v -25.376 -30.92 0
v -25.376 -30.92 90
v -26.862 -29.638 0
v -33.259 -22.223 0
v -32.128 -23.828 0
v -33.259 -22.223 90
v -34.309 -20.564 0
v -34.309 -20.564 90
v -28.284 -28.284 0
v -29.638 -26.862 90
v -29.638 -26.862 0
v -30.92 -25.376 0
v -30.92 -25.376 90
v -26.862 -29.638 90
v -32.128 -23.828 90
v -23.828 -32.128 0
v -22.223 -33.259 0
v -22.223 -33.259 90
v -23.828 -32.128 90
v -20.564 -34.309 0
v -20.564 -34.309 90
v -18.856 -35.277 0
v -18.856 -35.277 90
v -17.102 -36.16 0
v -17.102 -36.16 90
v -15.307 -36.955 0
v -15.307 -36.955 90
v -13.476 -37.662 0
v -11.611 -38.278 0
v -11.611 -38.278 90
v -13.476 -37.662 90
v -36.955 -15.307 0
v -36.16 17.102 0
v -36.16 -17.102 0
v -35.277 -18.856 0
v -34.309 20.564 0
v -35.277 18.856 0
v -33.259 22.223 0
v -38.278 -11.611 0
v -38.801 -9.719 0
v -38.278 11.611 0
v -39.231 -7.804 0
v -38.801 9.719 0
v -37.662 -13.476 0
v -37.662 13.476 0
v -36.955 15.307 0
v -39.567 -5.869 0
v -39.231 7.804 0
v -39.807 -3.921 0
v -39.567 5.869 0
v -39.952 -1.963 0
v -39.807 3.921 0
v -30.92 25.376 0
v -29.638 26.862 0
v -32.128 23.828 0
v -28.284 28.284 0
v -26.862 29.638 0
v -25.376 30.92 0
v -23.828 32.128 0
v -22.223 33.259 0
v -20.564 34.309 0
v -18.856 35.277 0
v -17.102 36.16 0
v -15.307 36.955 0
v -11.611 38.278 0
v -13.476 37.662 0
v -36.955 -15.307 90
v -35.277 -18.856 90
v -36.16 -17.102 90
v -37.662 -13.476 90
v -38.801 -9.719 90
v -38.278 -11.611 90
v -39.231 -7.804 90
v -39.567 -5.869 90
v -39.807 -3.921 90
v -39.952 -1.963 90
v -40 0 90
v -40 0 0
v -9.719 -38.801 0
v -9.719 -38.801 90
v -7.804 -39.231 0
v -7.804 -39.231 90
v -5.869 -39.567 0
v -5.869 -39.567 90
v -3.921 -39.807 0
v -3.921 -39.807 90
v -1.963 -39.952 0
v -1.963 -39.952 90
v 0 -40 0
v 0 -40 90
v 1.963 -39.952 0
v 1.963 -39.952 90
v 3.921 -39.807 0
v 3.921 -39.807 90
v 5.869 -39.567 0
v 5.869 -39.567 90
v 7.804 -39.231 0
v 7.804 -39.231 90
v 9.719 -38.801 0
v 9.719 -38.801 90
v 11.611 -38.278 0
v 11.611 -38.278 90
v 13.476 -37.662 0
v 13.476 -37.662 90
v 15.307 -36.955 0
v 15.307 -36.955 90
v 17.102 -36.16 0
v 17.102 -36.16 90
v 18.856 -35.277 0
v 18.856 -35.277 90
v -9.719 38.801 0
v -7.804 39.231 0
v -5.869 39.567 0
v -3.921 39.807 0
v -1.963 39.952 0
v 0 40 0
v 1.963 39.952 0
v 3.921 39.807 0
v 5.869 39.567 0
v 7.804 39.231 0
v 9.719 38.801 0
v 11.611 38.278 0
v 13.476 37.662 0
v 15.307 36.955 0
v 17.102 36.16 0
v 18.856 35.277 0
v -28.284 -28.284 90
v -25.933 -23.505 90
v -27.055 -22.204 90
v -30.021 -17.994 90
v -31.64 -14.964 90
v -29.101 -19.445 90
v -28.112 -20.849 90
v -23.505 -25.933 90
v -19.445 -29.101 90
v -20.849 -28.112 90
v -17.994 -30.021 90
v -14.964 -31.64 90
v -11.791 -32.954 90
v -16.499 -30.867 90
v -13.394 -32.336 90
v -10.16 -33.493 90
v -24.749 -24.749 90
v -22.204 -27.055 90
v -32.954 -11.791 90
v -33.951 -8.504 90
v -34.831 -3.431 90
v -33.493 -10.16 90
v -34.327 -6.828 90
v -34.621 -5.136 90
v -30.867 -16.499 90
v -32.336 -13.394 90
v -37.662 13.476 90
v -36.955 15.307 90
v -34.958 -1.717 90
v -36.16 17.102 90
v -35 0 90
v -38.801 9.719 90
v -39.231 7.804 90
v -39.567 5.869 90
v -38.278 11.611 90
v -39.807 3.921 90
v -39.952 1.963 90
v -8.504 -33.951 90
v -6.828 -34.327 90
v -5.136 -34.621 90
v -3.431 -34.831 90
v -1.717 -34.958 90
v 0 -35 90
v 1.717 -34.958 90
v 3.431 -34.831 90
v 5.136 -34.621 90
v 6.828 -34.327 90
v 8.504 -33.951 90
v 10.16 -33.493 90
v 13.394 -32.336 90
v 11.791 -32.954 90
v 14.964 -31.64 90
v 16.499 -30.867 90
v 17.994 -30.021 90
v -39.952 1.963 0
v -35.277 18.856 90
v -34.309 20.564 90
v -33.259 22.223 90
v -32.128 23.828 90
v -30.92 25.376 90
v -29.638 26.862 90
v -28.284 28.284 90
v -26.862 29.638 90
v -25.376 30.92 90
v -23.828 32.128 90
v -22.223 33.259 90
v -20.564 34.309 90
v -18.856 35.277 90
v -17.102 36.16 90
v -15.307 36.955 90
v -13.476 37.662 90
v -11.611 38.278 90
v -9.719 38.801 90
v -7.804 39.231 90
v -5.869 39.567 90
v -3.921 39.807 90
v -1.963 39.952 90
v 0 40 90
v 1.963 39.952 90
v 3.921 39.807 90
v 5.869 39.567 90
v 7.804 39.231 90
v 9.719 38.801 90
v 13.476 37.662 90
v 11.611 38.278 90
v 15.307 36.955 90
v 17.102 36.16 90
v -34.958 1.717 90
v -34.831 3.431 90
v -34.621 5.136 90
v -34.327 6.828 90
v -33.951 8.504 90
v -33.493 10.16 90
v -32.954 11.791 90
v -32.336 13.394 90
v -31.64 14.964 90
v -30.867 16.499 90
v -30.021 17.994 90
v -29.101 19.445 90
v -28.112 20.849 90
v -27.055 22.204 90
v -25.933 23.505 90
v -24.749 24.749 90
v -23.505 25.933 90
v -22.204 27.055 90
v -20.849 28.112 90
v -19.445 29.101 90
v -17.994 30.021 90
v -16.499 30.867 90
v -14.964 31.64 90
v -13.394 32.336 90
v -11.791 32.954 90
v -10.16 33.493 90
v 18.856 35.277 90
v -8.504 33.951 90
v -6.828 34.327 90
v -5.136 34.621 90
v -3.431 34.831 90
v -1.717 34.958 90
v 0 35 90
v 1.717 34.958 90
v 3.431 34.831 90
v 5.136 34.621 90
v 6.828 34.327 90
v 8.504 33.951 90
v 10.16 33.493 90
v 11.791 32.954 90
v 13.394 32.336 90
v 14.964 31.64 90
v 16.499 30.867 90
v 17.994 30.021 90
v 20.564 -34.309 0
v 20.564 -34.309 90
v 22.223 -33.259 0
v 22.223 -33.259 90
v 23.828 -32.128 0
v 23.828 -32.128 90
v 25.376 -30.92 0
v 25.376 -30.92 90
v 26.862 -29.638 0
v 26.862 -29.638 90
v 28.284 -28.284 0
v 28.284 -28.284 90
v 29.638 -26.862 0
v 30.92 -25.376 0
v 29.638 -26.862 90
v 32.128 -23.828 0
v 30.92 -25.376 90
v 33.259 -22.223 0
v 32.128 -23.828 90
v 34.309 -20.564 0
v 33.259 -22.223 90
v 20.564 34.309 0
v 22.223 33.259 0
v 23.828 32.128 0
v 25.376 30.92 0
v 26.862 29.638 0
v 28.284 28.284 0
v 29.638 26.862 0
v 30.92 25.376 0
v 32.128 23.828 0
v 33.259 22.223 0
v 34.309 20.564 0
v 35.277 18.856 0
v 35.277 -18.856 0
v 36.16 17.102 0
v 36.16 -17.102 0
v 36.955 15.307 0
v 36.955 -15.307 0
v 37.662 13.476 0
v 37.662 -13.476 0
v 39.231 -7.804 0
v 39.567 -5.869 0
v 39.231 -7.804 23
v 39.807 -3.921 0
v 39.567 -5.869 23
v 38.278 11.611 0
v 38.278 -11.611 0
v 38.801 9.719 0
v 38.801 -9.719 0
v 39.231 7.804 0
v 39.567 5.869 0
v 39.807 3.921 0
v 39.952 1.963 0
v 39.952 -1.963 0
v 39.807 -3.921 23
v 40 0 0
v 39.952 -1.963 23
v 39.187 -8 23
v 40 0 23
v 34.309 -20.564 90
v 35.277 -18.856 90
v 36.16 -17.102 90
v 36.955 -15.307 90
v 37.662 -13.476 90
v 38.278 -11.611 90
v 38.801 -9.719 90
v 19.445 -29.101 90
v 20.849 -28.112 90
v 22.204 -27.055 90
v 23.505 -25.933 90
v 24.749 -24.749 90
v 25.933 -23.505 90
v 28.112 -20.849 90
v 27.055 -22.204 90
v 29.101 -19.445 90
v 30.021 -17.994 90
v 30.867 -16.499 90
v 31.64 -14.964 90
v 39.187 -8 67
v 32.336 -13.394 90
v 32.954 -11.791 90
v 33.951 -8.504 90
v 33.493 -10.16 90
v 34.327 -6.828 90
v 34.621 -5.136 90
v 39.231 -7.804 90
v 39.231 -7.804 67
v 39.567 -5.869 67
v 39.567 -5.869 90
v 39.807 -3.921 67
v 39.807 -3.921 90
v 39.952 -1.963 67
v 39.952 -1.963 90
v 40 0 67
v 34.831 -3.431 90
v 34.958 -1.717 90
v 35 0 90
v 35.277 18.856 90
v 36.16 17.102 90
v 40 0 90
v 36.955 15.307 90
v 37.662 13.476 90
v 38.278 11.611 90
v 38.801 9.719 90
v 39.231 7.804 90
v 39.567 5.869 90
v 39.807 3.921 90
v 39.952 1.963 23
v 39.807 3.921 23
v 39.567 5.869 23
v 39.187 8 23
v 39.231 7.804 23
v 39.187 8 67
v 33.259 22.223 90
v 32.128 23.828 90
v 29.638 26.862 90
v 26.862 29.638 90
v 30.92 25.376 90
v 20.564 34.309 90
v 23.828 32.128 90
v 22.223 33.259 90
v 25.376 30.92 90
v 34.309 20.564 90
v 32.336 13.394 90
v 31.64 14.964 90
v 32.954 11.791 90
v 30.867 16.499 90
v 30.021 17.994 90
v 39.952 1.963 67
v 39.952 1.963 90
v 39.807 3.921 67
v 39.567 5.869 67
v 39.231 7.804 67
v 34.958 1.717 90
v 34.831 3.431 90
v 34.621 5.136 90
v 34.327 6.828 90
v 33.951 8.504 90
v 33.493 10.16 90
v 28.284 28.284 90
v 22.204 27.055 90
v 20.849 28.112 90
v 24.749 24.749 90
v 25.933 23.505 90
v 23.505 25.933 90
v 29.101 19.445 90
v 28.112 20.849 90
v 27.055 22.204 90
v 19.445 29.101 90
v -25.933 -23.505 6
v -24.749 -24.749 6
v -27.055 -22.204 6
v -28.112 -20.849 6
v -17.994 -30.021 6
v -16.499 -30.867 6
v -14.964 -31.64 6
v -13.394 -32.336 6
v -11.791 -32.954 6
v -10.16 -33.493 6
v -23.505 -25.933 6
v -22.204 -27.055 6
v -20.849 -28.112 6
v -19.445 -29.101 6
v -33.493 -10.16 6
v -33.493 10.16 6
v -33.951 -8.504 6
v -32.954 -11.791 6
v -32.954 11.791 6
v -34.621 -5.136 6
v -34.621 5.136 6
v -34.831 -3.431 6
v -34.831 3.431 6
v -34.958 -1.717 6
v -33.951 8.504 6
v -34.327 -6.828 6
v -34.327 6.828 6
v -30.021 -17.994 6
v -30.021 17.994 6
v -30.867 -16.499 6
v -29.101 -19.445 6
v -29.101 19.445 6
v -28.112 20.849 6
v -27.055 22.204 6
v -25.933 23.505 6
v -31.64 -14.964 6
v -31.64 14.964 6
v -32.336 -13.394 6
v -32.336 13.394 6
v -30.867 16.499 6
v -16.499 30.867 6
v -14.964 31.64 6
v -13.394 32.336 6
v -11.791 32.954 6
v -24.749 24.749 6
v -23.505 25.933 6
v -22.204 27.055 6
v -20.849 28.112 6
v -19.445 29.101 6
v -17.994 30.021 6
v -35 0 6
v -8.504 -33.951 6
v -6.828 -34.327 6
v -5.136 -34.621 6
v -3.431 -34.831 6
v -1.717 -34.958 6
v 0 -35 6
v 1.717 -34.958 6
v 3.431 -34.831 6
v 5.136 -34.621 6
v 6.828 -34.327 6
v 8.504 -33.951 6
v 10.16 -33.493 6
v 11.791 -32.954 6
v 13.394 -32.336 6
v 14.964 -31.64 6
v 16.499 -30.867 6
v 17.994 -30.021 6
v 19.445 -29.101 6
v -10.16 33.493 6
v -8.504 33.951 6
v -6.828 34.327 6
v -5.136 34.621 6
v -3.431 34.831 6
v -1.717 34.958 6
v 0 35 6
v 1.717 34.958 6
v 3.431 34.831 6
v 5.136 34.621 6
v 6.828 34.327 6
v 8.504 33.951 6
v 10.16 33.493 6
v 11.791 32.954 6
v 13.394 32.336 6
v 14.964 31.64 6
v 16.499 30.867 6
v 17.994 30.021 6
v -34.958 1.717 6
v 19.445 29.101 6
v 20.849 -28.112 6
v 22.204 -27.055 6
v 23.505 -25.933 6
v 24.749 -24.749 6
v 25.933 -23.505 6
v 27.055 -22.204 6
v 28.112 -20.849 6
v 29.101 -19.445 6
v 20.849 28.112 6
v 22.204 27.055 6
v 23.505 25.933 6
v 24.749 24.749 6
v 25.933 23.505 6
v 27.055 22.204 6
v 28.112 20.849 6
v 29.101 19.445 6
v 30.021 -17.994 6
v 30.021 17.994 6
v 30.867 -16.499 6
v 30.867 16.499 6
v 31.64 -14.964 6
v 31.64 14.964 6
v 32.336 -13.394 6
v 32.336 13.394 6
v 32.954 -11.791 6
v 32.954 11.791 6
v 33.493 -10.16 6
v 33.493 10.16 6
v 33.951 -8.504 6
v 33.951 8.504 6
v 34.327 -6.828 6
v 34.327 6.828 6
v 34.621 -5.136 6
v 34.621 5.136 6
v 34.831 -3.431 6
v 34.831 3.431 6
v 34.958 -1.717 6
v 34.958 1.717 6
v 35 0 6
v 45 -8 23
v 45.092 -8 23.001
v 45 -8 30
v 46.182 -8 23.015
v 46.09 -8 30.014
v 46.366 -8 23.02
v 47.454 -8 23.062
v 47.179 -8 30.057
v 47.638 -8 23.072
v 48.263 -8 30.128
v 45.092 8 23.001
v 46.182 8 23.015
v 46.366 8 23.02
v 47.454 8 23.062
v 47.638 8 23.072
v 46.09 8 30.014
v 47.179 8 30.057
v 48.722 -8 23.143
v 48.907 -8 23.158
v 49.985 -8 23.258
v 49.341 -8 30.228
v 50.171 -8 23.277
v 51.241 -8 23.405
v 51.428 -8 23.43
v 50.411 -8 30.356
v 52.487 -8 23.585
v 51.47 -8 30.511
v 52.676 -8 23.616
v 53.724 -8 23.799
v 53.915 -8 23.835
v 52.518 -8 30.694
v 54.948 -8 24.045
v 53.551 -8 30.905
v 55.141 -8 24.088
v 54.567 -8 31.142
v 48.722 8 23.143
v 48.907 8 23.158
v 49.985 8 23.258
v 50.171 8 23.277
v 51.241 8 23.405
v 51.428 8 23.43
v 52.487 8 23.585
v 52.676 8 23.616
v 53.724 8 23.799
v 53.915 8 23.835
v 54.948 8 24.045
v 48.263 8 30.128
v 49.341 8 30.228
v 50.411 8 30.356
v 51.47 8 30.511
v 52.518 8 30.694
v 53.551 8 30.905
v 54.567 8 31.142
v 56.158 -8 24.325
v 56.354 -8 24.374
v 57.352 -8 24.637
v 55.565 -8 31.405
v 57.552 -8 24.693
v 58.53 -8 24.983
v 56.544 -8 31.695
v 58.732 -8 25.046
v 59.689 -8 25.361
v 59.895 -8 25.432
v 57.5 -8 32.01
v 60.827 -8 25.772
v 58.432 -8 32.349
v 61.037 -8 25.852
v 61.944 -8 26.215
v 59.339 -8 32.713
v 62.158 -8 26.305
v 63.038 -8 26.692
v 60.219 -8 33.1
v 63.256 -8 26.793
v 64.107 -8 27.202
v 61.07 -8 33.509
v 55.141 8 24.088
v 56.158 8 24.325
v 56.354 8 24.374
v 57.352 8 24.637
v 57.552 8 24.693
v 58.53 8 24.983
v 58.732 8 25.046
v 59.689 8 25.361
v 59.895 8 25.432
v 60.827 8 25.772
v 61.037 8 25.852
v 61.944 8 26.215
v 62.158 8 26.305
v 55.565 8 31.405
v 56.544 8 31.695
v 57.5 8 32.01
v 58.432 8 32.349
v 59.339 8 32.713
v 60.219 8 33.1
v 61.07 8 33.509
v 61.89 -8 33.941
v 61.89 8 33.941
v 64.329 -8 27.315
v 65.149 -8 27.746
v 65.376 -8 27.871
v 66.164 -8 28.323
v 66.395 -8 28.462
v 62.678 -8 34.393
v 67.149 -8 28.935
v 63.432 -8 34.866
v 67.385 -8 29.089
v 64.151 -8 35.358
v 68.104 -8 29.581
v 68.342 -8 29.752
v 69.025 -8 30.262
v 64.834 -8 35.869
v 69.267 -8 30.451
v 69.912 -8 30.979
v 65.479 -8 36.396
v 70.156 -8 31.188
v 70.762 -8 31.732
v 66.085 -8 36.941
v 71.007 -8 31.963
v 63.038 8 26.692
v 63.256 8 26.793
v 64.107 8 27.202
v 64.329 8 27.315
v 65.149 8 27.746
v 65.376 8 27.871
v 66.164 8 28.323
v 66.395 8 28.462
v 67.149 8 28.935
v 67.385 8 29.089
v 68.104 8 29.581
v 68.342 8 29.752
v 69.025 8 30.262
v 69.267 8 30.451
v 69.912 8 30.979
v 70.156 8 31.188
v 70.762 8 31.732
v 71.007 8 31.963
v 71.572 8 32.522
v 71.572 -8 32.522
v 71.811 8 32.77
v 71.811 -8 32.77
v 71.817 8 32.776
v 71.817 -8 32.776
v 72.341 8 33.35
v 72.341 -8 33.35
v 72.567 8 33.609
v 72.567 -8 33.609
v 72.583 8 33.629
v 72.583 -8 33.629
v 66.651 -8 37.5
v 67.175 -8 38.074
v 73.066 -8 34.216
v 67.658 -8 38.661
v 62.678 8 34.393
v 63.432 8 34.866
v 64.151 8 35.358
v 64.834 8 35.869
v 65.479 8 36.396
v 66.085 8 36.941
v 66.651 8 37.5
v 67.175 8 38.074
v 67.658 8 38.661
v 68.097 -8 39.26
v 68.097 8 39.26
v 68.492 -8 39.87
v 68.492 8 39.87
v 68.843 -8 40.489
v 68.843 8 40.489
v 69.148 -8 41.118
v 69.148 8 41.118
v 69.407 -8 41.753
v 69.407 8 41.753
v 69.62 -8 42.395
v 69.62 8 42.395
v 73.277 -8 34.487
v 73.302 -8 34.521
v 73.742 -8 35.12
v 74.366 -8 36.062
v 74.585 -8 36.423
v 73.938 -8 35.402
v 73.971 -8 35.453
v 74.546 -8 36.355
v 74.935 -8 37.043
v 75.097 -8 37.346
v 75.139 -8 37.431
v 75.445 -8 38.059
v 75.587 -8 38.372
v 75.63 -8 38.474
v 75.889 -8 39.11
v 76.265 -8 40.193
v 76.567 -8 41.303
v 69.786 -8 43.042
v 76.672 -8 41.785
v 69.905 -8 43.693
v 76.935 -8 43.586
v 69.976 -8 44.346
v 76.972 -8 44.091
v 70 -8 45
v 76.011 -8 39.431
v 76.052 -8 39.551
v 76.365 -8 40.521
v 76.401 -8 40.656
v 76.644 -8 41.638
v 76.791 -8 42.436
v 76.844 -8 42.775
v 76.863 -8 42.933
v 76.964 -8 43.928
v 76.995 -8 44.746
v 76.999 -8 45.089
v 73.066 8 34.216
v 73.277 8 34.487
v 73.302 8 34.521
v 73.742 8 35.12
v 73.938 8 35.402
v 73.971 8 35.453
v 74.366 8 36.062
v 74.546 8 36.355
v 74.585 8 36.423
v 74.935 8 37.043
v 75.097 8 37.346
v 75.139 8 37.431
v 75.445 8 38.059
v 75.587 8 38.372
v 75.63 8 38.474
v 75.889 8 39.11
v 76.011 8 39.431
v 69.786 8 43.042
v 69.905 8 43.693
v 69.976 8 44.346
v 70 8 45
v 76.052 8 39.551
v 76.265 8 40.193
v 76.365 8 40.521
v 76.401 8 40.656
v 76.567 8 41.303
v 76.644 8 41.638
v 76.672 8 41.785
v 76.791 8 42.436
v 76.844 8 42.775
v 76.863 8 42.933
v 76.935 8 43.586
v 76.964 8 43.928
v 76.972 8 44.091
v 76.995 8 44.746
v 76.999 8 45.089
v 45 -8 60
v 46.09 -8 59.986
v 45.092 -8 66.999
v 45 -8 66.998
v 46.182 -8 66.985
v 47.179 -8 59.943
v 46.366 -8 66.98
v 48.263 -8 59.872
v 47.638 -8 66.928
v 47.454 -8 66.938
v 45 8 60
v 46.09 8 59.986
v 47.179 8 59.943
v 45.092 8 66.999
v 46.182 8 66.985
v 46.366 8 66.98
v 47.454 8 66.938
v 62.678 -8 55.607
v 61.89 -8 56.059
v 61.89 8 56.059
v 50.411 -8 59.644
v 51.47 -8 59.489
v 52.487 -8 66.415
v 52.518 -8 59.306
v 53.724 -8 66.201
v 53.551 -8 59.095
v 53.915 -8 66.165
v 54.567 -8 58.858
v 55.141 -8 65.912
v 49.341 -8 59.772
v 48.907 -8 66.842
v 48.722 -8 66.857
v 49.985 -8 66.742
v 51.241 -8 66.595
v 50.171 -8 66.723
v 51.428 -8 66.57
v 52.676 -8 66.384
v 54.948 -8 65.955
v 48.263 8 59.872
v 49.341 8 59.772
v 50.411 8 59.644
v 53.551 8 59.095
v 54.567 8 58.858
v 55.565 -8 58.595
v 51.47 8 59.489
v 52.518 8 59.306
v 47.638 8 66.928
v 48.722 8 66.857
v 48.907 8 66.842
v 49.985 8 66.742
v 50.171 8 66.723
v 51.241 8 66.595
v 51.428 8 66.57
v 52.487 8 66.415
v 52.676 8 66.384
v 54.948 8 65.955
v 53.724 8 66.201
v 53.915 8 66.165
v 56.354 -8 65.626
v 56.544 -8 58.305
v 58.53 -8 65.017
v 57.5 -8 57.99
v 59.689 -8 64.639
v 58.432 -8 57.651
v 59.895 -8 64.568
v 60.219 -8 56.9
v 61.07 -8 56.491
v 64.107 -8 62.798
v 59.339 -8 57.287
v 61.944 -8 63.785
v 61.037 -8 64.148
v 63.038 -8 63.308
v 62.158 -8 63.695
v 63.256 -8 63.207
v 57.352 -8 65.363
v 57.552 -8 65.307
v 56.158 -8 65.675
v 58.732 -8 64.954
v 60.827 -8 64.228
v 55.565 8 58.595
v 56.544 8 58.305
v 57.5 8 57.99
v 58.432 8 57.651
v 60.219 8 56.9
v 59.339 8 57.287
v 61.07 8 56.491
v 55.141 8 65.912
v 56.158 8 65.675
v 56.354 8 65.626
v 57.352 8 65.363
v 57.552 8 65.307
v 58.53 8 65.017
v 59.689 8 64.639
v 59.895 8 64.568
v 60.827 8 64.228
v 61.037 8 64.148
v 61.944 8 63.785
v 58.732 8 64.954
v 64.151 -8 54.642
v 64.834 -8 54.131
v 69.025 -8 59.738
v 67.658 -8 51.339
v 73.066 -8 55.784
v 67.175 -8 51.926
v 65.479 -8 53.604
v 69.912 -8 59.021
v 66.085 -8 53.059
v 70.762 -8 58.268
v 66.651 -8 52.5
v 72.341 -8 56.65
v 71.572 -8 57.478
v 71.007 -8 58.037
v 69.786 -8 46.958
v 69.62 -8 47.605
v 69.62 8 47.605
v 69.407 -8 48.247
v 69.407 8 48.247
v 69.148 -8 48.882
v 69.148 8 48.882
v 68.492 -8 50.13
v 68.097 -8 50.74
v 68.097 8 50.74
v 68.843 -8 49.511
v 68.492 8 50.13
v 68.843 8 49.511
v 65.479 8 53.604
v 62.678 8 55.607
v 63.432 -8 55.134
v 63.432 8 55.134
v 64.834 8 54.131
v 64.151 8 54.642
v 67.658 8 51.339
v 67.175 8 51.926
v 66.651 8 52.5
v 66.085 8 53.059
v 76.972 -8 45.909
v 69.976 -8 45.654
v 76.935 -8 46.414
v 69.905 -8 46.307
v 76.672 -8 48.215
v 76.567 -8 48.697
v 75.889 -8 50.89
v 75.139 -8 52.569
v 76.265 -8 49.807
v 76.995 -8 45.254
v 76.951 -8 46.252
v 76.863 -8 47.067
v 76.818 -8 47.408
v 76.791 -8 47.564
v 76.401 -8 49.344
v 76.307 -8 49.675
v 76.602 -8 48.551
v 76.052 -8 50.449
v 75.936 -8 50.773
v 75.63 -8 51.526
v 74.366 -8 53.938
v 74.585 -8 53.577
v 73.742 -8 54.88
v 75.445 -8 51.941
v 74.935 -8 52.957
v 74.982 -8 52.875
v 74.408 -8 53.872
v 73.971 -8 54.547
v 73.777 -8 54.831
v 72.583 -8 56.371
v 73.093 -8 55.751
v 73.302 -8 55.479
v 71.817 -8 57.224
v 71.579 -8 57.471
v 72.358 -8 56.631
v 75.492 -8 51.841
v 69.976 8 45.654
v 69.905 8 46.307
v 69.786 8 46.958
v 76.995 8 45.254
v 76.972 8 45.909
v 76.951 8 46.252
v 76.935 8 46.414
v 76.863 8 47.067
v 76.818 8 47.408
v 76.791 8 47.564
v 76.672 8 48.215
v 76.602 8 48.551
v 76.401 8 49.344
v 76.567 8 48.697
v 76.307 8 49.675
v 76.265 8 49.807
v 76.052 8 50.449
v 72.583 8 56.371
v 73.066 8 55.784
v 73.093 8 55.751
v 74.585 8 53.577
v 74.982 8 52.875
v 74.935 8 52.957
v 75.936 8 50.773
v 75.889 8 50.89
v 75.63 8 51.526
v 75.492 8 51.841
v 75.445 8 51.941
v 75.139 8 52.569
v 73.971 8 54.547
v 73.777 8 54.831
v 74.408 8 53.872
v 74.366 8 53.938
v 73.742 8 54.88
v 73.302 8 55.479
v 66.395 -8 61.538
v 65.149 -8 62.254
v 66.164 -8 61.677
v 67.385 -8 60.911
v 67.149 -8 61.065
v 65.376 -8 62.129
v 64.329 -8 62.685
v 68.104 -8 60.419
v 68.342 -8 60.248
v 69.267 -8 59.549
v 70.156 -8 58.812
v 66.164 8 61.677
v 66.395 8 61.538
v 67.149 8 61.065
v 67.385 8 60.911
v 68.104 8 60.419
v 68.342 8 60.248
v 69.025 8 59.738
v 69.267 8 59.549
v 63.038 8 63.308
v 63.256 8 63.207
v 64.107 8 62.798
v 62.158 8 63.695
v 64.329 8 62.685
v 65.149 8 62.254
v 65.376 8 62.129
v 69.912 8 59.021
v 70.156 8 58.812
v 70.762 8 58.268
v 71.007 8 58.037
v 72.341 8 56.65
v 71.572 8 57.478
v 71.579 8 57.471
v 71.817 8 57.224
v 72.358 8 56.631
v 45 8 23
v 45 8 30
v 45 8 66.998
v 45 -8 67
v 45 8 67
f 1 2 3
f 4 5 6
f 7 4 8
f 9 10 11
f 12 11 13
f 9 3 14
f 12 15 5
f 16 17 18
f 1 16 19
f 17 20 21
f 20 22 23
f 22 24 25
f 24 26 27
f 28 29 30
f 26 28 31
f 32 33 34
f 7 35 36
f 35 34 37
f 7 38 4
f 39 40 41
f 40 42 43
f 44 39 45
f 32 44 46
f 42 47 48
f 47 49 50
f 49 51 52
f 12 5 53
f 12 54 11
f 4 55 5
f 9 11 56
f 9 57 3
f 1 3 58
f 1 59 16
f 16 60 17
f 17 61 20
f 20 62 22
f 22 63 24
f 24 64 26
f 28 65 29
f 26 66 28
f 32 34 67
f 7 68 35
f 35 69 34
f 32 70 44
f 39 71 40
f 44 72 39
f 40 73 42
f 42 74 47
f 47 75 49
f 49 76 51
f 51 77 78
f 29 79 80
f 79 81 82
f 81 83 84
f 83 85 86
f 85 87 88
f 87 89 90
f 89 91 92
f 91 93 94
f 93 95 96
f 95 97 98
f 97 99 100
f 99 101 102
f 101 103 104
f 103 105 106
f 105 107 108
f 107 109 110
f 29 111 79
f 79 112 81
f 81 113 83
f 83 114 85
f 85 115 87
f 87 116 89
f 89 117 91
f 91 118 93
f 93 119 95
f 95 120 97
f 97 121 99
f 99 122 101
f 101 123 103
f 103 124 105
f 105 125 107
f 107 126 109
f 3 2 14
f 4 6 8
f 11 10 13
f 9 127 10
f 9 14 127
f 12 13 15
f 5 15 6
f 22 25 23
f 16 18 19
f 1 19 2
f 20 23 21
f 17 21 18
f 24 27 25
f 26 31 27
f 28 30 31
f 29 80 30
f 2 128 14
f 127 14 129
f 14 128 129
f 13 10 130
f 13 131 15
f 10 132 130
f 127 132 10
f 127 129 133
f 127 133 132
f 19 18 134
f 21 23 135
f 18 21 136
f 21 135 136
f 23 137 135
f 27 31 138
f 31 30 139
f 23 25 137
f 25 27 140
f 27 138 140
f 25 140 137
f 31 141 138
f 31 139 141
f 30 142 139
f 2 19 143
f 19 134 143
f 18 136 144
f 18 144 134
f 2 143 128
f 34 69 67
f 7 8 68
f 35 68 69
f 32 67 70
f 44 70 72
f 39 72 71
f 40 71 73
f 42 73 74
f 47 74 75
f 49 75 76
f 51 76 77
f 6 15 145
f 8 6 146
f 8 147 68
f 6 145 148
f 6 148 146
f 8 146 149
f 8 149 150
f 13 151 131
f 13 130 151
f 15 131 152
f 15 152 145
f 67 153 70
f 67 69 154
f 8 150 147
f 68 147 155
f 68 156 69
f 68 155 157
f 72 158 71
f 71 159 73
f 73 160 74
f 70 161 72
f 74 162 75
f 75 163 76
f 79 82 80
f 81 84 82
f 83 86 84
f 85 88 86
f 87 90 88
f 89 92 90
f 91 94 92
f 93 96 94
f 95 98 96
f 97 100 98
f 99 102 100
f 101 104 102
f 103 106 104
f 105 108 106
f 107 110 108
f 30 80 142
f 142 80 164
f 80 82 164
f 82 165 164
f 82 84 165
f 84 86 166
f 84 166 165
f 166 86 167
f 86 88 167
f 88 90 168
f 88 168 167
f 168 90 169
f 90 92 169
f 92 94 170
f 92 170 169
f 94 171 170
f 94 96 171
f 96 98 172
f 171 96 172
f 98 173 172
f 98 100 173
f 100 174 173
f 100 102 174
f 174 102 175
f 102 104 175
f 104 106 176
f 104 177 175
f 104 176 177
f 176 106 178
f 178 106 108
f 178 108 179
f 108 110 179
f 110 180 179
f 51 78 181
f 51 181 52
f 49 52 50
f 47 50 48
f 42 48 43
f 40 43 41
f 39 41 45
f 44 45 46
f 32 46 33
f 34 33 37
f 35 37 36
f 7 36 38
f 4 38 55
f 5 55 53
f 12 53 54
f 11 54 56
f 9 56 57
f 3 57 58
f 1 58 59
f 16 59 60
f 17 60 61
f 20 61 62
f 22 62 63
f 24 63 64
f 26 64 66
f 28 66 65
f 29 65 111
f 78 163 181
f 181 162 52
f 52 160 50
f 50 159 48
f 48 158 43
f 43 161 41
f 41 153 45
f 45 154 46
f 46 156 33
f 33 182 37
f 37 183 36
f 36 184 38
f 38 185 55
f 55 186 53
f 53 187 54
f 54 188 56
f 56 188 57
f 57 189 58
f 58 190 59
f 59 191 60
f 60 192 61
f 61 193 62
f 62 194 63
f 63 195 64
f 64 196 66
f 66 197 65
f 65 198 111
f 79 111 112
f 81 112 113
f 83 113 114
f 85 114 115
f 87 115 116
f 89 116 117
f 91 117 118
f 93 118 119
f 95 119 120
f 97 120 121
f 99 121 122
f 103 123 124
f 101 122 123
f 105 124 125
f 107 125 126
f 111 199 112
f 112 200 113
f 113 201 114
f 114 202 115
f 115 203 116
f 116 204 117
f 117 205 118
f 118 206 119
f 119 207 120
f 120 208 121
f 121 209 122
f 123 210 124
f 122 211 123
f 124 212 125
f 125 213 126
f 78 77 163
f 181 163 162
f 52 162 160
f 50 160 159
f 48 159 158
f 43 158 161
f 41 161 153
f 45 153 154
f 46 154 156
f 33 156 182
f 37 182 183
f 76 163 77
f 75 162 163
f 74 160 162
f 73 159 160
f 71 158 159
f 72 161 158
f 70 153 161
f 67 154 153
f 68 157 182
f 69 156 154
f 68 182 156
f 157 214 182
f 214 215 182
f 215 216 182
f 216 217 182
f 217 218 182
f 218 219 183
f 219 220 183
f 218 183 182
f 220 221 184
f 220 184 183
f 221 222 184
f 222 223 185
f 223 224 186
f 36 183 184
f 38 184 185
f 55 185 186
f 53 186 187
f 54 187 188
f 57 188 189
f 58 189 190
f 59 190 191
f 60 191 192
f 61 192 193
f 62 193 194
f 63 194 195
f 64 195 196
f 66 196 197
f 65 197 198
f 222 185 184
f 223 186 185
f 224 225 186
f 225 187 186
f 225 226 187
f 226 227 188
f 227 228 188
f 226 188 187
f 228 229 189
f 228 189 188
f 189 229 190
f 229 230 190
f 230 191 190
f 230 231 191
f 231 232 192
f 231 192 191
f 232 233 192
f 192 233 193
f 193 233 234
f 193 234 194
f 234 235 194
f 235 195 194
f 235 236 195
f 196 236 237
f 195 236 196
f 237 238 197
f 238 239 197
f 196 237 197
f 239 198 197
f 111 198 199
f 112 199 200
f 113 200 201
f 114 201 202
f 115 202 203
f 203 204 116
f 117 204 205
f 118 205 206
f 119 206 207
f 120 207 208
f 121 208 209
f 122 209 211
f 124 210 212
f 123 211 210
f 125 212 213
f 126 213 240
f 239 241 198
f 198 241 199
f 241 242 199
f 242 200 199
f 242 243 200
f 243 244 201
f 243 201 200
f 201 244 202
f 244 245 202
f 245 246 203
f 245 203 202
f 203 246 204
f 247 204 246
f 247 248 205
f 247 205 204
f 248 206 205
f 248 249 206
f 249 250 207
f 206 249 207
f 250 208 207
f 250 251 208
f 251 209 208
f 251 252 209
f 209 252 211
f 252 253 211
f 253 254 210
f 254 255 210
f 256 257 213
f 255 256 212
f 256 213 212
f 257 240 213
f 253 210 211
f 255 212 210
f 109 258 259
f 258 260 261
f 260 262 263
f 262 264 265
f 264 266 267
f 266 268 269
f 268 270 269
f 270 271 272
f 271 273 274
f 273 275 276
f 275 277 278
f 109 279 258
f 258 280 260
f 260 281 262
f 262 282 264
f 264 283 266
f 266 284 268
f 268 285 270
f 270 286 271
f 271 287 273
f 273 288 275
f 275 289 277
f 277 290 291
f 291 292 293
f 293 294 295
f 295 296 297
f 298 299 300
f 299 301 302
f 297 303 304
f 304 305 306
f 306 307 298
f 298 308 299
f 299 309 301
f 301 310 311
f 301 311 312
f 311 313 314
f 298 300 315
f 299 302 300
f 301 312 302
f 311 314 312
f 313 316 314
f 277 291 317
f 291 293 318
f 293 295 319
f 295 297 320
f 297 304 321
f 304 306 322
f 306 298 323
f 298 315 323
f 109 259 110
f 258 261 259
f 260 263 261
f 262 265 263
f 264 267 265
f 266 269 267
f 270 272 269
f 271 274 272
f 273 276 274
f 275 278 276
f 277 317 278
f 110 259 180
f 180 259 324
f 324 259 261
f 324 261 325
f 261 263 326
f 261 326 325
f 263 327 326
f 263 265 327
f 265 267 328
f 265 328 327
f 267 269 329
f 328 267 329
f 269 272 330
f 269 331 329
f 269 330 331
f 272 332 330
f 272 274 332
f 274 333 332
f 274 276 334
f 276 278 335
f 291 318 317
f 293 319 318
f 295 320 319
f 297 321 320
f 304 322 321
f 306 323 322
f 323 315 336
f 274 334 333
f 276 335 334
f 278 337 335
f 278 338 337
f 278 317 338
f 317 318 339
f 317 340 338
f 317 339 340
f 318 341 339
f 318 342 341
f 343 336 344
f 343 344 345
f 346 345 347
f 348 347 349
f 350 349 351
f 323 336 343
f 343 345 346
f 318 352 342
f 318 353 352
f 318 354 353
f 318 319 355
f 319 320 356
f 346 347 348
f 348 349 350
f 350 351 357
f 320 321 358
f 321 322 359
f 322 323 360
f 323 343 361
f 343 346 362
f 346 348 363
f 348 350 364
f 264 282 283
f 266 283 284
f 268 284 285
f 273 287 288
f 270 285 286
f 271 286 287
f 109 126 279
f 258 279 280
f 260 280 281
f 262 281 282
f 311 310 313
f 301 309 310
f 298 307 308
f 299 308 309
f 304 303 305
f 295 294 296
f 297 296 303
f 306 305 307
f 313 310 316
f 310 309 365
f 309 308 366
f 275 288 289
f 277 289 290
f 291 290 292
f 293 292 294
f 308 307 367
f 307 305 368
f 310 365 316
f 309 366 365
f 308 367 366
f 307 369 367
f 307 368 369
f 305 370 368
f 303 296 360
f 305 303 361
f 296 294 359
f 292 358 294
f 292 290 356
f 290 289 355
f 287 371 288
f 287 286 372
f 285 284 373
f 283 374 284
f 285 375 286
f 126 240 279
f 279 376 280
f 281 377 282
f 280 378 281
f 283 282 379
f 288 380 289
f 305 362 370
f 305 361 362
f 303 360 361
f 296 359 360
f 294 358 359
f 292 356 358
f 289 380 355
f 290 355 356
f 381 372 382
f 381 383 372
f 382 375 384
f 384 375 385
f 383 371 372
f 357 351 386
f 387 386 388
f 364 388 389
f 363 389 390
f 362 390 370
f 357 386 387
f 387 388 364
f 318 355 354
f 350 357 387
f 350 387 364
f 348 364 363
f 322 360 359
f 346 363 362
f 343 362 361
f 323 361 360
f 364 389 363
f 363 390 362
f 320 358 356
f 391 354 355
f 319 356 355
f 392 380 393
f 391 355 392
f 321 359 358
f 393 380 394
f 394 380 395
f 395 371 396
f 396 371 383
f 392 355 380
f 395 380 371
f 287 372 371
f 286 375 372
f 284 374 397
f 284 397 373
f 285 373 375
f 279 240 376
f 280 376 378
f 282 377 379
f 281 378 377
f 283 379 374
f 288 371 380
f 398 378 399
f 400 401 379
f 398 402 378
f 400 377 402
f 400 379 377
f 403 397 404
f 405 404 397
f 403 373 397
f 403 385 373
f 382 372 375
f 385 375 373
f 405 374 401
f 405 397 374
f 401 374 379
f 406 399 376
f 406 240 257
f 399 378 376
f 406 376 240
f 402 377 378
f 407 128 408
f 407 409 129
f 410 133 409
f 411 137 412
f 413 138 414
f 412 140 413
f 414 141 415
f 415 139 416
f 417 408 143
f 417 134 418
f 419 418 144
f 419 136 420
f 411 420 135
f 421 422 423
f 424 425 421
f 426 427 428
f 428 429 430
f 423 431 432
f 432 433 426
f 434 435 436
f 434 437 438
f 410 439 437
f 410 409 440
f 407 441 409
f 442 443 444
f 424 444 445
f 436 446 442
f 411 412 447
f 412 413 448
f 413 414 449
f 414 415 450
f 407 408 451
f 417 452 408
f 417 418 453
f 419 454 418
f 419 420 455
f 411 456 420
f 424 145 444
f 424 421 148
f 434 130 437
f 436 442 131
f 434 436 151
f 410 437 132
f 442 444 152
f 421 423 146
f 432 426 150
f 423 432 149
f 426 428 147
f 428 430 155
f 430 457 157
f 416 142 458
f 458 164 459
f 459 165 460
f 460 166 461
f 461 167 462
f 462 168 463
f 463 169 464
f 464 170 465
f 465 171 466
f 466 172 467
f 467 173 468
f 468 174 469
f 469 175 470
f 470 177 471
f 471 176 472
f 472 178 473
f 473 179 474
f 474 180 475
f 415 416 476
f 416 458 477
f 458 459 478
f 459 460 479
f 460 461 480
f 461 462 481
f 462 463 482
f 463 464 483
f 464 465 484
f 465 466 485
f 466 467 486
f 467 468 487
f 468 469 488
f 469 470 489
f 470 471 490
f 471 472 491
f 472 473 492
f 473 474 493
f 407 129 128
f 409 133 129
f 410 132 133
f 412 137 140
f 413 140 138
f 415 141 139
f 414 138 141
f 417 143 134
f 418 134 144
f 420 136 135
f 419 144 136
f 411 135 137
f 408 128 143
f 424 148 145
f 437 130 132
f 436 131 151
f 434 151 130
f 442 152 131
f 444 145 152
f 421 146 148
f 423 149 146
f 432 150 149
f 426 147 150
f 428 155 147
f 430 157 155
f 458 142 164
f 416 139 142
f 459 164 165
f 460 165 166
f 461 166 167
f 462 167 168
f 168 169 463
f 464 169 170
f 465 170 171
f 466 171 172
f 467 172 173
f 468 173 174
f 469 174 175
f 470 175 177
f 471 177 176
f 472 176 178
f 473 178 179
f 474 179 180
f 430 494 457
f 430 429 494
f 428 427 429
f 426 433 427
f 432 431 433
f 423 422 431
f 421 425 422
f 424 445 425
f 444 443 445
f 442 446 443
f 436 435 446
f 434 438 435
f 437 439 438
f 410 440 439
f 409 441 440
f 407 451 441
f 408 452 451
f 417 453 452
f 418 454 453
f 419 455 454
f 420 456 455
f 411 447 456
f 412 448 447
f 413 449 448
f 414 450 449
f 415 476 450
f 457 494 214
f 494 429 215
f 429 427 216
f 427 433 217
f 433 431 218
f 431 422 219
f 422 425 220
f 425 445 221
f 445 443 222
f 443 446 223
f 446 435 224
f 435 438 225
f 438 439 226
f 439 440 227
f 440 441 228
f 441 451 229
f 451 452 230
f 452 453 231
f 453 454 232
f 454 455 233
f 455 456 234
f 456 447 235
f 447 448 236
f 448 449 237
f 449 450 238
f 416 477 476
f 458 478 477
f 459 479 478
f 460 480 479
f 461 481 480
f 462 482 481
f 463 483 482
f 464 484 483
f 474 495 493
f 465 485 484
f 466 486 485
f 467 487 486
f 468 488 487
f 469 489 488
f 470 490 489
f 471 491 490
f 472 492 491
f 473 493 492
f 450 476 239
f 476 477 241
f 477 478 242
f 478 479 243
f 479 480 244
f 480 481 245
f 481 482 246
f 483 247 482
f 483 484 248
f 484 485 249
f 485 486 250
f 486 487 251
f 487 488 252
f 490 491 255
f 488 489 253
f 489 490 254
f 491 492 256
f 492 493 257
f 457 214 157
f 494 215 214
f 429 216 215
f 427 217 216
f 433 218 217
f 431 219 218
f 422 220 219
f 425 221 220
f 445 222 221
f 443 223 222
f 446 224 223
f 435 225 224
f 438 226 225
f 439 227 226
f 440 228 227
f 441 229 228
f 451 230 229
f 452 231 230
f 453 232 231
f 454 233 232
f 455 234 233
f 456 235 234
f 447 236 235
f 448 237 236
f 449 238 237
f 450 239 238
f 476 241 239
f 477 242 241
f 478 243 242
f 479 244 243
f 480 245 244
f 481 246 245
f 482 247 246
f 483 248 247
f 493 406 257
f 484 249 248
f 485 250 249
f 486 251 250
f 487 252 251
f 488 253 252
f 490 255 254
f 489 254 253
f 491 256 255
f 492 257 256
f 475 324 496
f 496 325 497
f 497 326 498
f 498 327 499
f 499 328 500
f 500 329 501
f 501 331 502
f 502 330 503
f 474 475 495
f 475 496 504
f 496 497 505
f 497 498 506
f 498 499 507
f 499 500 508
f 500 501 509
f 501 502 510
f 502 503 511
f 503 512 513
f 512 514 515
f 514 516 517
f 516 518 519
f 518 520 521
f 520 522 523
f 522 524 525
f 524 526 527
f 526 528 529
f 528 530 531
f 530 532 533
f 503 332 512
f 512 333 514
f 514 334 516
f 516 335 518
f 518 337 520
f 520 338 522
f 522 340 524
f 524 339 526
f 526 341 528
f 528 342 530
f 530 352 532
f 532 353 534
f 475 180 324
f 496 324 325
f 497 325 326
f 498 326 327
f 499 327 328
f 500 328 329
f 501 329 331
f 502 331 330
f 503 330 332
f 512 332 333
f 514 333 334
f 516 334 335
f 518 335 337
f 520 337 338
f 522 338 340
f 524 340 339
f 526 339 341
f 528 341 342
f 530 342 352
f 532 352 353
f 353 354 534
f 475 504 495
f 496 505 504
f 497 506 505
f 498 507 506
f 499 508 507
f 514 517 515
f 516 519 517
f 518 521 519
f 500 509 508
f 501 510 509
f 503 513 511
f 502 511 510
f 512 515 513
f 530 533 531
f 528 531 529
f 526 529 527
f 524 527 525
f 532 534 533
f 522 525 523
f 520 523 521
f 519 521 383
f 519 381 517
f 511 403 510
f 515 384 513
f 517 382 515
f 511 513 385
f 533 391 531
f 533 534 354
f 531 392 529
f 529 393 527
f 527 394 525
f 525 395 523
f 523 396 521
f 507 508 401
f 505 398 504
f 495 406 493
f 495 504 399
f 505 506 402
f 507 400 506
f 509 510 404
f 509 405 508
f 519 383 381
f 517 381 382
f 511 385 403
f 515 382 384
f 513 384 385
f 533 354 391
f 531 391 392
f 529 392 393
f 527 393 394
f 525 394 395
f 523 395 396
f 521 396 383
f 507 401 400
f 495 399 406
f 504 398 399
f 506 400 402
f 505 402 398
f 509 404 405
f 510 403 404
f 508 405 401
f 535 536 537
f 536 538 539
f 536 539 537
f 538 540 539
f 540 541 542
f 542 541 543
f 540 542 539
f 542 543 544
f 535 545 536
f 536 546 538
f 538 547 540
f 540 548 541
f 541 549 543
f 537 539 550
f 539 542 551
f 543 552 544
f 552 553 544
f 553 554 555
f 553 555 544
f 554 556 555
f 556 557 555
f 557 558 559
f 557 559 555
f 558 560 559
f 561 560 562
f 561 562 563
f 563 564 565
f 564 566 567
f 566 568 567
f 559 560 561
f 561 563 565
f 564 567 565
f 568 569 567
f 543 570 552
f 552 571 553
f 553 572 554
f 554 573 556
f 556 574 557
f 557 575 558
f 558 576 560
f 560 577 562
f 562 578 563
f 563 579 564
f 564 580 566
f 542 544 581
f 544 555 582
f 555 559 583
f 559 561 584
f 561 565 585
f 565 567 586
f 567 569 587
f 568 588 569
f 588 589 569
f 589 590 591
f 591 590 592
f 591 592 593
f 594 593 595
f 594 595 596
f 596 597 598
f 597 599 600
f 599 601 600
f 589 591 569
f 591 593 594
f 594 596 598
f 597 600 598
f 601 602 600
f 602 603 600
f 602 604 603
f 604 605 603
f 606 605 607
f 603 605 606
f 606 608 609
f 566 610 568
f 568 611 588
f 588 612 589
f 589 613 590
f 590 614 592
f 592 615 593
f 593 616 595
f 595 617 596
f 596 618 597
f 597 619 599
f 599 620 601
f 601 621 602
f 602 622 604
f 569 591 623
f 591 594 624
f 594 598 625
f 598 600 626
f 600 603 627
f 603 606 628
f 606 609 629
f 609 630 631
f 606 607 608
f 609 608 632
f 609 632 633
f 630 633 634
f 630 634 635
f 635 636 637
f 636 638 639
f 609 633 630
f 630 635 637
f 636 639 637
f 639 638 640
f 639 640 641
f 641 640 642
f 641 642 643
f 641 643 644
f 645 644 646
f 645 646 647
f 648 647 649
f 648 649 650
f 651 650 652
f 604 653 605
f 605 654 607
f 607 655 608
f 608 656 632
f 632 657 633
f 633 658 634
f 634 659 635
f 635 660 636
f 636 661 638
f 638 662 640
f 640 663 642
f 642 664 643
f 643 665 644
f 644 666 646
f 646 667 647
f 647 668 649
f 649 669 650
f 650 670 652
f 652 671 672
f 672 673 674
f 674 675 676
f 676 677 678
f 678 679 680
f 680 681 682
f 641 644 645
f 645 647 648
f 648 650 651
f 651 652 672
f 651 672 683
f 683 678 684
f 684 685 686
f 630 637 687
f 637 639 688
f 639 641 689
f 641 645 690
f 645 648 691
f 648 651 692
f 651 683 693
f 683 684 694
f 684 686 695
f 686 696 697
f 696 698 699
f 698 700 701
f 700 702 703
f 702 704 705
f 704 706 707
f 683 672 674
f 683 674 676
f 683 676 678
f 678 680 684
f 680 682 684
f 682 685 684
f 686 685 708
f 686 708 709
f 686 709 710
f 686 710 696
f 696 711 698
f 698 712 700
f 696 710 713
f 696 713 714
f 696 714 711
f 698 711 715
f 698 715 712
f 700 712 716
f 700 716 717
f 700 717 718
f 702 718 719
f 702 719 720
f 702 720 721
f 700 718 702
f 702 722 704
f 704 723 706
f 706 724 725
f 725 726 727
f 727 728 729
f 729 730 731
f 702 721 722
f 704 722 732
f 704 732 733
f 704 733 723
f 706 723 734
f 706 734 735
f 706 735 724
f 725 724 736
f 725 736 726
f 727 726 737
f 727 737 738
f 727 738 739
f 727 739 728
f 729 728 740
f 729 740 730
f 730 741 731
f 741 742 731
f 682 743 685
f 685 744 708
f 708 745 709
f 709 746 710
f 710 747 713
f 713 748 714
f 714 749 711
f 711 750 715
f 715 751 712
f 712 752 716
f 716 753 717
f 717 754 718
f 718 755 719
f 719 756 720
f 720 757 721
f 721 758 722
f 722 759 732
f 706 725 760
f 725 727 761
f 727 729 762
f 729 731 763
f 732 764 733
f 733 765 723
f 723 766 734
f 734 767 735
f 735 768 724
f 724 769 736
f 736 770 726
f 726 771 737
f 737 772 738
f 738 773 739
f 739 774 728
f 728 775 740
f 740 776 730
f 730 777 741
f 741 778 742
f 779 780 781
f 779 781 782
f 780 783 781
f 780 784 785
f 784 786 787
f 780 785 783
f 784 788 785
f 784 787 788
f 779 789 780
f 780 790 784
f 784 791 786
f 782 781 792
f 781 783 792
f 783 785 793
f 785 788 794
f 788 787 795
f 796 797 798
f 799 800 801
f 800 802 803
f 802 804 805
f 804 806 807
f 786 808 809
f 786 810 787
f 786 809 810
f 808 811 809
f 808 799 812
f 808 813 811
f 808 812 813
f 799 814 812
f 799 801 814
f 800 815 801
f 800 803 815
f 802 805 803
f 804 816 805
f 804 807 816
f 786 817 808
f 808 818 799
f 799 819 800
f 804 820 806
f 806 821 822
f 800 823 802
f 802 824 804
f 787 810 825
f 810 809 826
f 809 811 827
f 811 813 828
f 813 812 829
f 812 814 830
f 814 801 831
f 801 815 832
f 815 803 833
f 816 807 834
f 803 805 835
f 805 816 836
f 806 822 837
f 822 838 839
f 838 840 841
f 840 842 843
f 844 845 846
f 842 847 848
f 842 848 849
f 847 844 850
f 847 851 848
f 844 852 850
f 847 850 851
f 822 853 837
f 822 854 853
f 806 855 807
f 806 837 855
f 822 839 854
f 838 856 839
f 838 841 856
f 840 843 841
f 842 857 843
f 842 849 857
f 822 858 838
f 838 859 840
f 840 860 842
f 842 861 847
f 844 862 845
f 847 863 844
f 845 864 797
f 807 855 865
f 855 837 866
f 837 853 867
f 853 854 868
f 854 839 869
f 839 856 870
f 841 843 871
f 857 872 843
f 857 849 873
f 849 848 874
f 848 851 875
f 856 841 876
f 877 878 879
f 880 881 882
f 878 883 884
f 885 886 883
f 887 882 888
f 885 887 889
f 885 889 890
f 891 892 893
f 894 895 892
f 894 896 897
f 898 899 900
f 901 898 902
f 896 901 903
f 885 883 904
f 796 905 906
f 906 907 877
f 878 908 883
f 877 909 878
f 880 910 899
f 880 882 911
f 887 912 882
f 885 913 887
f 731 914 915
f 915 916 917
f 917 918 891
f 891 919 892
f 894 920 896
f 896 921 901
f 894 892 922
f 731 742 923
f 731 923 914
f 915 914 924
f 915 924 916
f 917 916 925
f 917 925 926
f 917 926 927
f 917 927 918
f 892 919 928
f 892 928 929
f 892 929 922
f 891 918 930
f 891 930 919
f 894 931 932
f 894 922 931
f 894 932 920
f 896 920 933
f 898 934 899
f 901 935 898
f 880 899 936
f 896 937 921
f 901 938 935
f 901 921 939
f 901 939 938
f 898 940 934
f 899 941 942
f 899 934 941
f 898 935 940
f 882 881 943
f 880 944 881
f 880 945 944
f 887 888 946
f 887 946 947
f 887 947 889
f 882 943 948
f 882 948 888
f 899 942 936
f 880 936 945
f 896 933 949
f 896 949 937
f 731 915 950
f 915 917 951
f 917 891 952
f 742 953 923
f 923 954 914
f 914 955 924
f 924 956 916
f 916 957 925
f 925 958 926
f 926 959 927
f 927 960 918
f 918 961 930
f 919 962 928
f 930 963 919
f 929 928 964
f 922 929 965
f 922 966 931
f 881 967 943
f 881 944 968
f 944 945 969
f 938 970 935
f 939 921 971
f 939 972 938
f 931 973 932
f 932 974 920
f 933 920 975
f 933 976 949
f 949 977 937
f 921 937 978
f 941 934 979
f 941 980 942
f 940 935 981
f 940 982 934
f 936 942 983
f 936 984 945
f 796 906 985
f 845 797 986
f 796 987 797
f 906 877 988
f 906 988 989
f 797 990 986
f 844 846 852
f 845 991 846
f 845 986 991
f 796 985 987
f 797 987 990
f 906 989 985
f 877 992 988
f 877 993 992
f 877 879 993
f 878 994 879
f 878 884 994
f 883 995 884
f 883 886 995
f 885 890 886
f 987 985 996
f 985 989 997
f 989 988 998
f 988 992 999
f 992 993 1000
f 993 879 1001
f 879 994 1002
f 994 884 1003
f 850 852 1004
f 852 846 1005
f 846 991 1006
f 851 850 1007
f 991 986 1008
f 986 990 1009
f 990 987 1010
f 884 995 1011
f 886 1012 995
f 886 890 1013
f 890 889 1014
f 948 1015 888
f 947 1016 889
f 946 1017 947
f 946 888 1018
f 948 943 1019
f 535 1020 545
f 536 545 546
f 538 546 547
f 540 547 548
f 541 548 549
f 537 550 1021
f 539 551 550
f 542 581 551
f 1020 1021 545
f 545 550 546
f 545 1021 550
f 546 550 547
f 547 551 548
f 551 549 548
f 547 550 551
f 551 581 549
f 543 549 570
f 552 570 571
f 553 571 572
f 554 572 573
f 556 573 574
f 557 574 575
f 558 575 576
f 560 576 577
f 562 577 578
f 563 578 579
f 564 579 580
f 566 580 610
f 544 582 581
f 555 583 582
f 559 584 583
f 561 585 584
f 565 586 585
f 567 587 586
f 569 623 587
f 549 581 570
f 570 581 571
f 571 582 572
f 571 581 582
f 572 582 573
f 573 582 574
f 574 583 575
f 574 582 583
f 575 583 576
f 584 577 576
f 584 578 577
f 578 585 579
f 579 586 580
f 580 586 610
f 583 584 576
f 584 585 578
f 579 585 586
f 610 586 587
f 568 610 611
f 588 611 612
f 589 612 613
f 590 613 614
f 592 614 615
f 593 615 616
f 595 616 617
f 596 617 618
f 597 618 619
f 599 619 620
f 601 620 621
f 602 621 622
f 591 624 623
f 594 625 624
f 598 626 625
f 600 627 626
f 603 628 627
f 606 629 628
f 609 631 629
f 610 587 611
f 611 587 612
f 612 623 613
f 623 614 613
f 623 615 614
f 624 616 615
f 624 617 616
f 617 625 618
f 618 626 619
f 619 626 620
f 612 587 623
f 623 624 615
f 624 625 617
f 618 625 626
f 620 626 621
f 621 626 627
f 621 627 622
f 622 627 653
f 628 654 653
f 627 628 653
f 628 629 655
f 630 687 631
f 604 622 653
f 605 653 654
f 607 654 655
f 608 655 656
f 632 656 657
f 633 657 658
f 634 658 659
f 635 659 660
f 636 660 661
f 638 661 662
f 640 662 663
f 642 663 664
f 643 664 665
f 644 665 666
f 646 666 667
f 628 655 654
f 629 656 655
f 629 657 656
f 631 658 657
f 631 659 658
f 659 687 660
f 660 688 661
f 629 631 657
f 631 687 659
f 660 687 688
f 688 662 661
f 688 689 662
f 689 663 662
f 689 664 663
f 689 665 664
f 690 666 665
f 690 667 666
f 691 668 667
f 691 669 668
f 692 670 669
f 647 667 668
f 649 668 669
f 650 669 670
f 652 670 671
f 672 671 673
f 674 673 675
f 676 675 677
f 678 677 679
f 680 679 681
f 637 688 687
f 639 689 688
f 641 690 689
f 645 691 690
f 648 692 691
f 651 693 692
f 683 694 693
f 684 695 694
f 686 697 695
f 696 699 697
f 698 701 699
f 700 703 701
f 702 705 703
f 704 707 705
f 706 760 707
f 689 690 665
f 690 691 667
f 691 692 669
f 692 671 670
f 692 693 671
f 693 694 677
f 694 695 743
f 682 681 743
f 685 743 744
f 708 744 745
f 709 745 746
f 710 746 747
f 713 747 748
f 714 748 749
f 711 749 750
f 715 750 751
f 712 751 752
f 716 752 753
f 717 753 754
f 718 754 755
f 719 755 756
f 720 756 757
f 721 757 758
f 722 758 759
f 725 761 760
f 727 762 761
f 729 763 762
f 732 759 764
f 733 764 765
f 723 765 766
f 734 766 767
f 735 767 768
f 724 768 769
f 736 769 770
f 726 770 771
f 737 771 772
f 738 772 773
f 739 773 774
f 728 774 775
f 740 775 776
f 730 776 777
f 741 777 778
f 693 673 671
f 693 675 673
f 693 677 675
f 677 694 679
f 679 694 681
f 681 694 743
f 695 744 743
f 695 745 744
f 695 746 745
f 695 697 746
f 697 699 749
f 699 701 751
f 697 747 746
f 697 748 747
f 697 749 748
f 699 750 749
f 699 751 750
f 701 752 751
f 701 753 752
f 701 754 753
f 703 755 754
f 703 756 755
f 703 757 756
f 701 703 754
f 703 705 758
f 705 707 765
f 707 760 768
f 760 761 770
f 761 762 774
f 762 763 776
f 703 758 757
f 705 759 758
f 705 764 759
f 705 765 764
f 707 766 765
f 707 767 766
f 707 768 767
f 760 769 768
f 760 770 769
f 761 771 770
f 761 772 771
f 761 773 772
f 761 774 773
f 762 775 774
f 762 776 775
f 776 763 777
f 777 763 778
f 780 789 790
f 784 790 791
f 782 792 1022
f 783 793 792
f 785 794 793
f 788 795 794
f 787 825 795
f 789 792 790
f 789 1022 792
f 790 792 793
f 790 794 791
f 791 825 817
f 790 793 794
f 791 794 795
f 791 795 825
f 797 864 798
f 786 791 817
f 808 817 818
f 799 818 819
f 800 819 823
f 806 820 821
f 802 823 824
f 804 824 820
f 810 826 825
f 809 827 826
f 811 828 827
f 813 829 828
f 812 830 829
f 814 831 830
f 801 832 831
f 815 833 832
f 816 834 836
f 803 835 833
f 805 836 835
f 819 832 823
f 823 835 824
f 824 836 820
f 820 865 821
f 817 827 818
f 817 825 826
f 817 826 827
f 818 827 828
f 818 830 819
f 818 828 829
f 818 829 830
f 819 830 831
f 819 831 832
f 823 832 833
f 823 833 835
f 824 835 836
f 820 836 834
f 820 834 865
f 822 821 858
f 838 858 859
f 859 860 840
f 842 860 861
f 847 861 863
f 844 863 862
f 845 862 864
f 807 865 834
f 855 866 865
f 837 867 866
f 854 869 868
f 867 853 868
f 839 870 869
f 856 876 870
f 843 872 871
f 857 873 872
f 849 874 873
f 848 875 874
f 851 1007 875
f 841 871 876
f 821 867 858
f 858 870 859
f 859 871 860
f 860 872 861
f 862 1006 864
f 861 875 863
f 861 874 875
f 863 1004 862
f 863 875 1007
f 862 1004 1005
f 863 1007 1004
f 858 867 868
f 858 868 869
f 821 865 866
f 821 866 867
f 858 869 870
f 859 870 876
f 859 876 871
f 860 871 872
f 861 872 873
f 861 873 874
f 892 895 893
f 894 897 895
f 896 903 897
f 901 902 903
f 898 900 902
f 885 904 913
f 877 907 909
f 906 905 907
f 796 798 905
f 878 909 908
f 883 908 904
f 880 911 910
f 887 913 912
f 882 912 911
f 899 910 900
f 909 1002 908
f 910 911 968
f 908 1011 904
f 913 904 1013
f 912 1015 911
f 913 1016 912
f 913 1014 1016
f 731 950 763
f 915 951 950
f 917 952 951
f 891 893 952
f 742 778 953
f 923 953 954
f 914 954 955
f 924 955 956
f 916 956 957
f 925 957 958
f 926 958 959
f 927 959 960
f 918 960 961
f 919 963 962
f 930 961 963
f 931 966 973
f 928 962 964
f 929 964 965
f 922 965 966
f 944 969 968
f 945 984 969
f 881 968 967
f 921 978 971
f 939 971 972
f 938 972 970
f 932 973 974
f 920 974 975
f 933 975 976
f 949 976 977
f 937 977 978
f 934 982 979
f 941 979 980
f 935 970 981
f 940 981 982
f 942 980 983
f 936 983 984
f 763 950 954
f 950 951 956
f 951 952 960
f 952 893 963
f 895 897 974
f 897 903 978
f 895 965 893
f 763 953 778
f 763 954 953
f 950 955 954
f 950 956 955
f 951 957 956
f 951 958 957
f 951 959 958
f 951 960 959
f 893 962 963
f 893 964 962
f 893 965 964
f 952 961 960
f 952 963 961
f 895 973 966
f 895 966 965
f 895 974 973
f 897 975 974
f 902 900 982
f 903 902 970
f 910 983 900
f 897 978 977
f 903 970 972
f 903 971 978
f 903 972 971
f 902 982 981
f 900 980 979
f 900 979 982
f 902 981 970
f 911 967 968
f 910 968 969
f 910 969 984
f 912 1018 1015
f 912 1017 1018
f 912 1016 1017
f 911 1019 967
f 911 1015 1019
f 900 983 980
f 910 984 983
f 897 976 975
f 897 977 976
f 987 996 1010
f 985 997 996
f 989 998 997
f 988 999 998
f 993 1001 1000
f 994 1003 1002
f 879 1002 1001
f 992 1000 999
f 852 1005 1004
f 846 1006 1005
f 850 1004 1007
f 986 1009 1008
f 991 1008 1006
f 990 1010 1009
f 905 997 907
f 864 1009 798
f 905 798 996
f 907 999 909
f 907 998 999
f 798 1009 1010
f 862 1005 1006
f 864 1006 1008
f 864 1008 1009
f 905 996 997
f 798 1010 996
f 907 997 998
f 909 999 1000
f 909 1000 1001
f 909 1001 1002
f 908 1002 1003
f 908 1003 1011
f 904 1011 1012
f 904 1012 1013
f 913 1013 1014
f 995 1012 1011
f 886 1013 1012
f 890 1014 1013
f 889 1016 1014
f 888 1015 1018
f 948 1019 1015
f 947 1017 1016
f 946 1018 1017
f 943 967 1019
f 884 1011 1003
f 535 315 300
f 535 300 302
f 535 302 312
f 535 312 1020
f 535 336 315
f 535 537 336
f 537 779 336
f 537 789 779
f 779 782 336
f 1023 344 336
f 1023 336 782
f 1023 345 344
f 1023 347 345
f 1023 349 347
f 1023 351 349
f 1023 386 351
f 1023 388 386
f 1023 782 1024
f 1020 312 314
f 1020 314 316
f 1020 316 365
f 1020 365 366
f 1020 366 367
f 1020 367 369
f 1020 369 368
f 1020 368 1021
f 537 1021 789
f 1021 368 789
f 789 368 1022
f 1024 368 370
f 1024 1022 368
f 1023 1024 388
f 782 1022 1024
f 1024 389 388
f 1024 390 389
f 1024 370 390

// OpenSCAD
$fn = 128;

outer_diameter = 80;
inner_diameter = 70;
mug_height = 90;
bottom_thickness = 6;

outer_radius = outer_diameter / 2;
inner_radius = inner_diameter / 2;

handle_opening_height = 30;
handle_opening_width = 25;
handle_wall = 7;
handle_depth = 16;
handle_center_z = mug_height / 2;
handle_opening_left_x = outer_radius + 5;
handle_attach_overlap = 2.5;

eps = 0.2;

module mug_body() {
    difference() {
        cylinder(h = mug_height, r = outer_radius);

        translate([0, 0, bottom_thickness])
            cylinder(h = mug_height - bottom_thickness + eps, r = inner_radius);
    }
}

module d_shape(x0, z0, h, w, segments = 72) {
    polygon(
        points = concat(
            [[x0, z0 - h / 2]],
            [
                for (i = [1 : segments - 1])
                    let (a = -90 + 180 * i / segments)
                        [x0 + w * cos(a), z0 + (h / 2) * sin(a)]
            ],
            [[x0, z0 + h / 2]]
        )
    );
}

module handle_profile() {
    difference() {
        offset(r = handle_wall)
            d_shape(
                handle_opening_left_x,
                handle_center_z,
                handle_opening_height,
                handle_opening_width
            );

        d_shape(
            handle_opening_left_x,
            handle_center_z,
            handle_opening_height,
            handle_opening_width
        );
    }
}

module handle() {
    union() {
        rotate([90, 0, 0])
            linear_extrude(height = handle_depth, center = true, convexity = 10)
                handle_profile();

        translate([
            outer_radius - handle_attach_overlap,
            -handle_depth / 2,
            handle_center_z - handle_opening_height / 2 - handle_wall
        ])
            cube([
                handle_opening_left_x - (outer_radius - handle_attach_overlap),
                handle_depth,
                handle_opening_height + 2 * handle_wall
            ]);
    }
}

render(convexity = 10)
union() {
    mug_body();
    handle();
}
